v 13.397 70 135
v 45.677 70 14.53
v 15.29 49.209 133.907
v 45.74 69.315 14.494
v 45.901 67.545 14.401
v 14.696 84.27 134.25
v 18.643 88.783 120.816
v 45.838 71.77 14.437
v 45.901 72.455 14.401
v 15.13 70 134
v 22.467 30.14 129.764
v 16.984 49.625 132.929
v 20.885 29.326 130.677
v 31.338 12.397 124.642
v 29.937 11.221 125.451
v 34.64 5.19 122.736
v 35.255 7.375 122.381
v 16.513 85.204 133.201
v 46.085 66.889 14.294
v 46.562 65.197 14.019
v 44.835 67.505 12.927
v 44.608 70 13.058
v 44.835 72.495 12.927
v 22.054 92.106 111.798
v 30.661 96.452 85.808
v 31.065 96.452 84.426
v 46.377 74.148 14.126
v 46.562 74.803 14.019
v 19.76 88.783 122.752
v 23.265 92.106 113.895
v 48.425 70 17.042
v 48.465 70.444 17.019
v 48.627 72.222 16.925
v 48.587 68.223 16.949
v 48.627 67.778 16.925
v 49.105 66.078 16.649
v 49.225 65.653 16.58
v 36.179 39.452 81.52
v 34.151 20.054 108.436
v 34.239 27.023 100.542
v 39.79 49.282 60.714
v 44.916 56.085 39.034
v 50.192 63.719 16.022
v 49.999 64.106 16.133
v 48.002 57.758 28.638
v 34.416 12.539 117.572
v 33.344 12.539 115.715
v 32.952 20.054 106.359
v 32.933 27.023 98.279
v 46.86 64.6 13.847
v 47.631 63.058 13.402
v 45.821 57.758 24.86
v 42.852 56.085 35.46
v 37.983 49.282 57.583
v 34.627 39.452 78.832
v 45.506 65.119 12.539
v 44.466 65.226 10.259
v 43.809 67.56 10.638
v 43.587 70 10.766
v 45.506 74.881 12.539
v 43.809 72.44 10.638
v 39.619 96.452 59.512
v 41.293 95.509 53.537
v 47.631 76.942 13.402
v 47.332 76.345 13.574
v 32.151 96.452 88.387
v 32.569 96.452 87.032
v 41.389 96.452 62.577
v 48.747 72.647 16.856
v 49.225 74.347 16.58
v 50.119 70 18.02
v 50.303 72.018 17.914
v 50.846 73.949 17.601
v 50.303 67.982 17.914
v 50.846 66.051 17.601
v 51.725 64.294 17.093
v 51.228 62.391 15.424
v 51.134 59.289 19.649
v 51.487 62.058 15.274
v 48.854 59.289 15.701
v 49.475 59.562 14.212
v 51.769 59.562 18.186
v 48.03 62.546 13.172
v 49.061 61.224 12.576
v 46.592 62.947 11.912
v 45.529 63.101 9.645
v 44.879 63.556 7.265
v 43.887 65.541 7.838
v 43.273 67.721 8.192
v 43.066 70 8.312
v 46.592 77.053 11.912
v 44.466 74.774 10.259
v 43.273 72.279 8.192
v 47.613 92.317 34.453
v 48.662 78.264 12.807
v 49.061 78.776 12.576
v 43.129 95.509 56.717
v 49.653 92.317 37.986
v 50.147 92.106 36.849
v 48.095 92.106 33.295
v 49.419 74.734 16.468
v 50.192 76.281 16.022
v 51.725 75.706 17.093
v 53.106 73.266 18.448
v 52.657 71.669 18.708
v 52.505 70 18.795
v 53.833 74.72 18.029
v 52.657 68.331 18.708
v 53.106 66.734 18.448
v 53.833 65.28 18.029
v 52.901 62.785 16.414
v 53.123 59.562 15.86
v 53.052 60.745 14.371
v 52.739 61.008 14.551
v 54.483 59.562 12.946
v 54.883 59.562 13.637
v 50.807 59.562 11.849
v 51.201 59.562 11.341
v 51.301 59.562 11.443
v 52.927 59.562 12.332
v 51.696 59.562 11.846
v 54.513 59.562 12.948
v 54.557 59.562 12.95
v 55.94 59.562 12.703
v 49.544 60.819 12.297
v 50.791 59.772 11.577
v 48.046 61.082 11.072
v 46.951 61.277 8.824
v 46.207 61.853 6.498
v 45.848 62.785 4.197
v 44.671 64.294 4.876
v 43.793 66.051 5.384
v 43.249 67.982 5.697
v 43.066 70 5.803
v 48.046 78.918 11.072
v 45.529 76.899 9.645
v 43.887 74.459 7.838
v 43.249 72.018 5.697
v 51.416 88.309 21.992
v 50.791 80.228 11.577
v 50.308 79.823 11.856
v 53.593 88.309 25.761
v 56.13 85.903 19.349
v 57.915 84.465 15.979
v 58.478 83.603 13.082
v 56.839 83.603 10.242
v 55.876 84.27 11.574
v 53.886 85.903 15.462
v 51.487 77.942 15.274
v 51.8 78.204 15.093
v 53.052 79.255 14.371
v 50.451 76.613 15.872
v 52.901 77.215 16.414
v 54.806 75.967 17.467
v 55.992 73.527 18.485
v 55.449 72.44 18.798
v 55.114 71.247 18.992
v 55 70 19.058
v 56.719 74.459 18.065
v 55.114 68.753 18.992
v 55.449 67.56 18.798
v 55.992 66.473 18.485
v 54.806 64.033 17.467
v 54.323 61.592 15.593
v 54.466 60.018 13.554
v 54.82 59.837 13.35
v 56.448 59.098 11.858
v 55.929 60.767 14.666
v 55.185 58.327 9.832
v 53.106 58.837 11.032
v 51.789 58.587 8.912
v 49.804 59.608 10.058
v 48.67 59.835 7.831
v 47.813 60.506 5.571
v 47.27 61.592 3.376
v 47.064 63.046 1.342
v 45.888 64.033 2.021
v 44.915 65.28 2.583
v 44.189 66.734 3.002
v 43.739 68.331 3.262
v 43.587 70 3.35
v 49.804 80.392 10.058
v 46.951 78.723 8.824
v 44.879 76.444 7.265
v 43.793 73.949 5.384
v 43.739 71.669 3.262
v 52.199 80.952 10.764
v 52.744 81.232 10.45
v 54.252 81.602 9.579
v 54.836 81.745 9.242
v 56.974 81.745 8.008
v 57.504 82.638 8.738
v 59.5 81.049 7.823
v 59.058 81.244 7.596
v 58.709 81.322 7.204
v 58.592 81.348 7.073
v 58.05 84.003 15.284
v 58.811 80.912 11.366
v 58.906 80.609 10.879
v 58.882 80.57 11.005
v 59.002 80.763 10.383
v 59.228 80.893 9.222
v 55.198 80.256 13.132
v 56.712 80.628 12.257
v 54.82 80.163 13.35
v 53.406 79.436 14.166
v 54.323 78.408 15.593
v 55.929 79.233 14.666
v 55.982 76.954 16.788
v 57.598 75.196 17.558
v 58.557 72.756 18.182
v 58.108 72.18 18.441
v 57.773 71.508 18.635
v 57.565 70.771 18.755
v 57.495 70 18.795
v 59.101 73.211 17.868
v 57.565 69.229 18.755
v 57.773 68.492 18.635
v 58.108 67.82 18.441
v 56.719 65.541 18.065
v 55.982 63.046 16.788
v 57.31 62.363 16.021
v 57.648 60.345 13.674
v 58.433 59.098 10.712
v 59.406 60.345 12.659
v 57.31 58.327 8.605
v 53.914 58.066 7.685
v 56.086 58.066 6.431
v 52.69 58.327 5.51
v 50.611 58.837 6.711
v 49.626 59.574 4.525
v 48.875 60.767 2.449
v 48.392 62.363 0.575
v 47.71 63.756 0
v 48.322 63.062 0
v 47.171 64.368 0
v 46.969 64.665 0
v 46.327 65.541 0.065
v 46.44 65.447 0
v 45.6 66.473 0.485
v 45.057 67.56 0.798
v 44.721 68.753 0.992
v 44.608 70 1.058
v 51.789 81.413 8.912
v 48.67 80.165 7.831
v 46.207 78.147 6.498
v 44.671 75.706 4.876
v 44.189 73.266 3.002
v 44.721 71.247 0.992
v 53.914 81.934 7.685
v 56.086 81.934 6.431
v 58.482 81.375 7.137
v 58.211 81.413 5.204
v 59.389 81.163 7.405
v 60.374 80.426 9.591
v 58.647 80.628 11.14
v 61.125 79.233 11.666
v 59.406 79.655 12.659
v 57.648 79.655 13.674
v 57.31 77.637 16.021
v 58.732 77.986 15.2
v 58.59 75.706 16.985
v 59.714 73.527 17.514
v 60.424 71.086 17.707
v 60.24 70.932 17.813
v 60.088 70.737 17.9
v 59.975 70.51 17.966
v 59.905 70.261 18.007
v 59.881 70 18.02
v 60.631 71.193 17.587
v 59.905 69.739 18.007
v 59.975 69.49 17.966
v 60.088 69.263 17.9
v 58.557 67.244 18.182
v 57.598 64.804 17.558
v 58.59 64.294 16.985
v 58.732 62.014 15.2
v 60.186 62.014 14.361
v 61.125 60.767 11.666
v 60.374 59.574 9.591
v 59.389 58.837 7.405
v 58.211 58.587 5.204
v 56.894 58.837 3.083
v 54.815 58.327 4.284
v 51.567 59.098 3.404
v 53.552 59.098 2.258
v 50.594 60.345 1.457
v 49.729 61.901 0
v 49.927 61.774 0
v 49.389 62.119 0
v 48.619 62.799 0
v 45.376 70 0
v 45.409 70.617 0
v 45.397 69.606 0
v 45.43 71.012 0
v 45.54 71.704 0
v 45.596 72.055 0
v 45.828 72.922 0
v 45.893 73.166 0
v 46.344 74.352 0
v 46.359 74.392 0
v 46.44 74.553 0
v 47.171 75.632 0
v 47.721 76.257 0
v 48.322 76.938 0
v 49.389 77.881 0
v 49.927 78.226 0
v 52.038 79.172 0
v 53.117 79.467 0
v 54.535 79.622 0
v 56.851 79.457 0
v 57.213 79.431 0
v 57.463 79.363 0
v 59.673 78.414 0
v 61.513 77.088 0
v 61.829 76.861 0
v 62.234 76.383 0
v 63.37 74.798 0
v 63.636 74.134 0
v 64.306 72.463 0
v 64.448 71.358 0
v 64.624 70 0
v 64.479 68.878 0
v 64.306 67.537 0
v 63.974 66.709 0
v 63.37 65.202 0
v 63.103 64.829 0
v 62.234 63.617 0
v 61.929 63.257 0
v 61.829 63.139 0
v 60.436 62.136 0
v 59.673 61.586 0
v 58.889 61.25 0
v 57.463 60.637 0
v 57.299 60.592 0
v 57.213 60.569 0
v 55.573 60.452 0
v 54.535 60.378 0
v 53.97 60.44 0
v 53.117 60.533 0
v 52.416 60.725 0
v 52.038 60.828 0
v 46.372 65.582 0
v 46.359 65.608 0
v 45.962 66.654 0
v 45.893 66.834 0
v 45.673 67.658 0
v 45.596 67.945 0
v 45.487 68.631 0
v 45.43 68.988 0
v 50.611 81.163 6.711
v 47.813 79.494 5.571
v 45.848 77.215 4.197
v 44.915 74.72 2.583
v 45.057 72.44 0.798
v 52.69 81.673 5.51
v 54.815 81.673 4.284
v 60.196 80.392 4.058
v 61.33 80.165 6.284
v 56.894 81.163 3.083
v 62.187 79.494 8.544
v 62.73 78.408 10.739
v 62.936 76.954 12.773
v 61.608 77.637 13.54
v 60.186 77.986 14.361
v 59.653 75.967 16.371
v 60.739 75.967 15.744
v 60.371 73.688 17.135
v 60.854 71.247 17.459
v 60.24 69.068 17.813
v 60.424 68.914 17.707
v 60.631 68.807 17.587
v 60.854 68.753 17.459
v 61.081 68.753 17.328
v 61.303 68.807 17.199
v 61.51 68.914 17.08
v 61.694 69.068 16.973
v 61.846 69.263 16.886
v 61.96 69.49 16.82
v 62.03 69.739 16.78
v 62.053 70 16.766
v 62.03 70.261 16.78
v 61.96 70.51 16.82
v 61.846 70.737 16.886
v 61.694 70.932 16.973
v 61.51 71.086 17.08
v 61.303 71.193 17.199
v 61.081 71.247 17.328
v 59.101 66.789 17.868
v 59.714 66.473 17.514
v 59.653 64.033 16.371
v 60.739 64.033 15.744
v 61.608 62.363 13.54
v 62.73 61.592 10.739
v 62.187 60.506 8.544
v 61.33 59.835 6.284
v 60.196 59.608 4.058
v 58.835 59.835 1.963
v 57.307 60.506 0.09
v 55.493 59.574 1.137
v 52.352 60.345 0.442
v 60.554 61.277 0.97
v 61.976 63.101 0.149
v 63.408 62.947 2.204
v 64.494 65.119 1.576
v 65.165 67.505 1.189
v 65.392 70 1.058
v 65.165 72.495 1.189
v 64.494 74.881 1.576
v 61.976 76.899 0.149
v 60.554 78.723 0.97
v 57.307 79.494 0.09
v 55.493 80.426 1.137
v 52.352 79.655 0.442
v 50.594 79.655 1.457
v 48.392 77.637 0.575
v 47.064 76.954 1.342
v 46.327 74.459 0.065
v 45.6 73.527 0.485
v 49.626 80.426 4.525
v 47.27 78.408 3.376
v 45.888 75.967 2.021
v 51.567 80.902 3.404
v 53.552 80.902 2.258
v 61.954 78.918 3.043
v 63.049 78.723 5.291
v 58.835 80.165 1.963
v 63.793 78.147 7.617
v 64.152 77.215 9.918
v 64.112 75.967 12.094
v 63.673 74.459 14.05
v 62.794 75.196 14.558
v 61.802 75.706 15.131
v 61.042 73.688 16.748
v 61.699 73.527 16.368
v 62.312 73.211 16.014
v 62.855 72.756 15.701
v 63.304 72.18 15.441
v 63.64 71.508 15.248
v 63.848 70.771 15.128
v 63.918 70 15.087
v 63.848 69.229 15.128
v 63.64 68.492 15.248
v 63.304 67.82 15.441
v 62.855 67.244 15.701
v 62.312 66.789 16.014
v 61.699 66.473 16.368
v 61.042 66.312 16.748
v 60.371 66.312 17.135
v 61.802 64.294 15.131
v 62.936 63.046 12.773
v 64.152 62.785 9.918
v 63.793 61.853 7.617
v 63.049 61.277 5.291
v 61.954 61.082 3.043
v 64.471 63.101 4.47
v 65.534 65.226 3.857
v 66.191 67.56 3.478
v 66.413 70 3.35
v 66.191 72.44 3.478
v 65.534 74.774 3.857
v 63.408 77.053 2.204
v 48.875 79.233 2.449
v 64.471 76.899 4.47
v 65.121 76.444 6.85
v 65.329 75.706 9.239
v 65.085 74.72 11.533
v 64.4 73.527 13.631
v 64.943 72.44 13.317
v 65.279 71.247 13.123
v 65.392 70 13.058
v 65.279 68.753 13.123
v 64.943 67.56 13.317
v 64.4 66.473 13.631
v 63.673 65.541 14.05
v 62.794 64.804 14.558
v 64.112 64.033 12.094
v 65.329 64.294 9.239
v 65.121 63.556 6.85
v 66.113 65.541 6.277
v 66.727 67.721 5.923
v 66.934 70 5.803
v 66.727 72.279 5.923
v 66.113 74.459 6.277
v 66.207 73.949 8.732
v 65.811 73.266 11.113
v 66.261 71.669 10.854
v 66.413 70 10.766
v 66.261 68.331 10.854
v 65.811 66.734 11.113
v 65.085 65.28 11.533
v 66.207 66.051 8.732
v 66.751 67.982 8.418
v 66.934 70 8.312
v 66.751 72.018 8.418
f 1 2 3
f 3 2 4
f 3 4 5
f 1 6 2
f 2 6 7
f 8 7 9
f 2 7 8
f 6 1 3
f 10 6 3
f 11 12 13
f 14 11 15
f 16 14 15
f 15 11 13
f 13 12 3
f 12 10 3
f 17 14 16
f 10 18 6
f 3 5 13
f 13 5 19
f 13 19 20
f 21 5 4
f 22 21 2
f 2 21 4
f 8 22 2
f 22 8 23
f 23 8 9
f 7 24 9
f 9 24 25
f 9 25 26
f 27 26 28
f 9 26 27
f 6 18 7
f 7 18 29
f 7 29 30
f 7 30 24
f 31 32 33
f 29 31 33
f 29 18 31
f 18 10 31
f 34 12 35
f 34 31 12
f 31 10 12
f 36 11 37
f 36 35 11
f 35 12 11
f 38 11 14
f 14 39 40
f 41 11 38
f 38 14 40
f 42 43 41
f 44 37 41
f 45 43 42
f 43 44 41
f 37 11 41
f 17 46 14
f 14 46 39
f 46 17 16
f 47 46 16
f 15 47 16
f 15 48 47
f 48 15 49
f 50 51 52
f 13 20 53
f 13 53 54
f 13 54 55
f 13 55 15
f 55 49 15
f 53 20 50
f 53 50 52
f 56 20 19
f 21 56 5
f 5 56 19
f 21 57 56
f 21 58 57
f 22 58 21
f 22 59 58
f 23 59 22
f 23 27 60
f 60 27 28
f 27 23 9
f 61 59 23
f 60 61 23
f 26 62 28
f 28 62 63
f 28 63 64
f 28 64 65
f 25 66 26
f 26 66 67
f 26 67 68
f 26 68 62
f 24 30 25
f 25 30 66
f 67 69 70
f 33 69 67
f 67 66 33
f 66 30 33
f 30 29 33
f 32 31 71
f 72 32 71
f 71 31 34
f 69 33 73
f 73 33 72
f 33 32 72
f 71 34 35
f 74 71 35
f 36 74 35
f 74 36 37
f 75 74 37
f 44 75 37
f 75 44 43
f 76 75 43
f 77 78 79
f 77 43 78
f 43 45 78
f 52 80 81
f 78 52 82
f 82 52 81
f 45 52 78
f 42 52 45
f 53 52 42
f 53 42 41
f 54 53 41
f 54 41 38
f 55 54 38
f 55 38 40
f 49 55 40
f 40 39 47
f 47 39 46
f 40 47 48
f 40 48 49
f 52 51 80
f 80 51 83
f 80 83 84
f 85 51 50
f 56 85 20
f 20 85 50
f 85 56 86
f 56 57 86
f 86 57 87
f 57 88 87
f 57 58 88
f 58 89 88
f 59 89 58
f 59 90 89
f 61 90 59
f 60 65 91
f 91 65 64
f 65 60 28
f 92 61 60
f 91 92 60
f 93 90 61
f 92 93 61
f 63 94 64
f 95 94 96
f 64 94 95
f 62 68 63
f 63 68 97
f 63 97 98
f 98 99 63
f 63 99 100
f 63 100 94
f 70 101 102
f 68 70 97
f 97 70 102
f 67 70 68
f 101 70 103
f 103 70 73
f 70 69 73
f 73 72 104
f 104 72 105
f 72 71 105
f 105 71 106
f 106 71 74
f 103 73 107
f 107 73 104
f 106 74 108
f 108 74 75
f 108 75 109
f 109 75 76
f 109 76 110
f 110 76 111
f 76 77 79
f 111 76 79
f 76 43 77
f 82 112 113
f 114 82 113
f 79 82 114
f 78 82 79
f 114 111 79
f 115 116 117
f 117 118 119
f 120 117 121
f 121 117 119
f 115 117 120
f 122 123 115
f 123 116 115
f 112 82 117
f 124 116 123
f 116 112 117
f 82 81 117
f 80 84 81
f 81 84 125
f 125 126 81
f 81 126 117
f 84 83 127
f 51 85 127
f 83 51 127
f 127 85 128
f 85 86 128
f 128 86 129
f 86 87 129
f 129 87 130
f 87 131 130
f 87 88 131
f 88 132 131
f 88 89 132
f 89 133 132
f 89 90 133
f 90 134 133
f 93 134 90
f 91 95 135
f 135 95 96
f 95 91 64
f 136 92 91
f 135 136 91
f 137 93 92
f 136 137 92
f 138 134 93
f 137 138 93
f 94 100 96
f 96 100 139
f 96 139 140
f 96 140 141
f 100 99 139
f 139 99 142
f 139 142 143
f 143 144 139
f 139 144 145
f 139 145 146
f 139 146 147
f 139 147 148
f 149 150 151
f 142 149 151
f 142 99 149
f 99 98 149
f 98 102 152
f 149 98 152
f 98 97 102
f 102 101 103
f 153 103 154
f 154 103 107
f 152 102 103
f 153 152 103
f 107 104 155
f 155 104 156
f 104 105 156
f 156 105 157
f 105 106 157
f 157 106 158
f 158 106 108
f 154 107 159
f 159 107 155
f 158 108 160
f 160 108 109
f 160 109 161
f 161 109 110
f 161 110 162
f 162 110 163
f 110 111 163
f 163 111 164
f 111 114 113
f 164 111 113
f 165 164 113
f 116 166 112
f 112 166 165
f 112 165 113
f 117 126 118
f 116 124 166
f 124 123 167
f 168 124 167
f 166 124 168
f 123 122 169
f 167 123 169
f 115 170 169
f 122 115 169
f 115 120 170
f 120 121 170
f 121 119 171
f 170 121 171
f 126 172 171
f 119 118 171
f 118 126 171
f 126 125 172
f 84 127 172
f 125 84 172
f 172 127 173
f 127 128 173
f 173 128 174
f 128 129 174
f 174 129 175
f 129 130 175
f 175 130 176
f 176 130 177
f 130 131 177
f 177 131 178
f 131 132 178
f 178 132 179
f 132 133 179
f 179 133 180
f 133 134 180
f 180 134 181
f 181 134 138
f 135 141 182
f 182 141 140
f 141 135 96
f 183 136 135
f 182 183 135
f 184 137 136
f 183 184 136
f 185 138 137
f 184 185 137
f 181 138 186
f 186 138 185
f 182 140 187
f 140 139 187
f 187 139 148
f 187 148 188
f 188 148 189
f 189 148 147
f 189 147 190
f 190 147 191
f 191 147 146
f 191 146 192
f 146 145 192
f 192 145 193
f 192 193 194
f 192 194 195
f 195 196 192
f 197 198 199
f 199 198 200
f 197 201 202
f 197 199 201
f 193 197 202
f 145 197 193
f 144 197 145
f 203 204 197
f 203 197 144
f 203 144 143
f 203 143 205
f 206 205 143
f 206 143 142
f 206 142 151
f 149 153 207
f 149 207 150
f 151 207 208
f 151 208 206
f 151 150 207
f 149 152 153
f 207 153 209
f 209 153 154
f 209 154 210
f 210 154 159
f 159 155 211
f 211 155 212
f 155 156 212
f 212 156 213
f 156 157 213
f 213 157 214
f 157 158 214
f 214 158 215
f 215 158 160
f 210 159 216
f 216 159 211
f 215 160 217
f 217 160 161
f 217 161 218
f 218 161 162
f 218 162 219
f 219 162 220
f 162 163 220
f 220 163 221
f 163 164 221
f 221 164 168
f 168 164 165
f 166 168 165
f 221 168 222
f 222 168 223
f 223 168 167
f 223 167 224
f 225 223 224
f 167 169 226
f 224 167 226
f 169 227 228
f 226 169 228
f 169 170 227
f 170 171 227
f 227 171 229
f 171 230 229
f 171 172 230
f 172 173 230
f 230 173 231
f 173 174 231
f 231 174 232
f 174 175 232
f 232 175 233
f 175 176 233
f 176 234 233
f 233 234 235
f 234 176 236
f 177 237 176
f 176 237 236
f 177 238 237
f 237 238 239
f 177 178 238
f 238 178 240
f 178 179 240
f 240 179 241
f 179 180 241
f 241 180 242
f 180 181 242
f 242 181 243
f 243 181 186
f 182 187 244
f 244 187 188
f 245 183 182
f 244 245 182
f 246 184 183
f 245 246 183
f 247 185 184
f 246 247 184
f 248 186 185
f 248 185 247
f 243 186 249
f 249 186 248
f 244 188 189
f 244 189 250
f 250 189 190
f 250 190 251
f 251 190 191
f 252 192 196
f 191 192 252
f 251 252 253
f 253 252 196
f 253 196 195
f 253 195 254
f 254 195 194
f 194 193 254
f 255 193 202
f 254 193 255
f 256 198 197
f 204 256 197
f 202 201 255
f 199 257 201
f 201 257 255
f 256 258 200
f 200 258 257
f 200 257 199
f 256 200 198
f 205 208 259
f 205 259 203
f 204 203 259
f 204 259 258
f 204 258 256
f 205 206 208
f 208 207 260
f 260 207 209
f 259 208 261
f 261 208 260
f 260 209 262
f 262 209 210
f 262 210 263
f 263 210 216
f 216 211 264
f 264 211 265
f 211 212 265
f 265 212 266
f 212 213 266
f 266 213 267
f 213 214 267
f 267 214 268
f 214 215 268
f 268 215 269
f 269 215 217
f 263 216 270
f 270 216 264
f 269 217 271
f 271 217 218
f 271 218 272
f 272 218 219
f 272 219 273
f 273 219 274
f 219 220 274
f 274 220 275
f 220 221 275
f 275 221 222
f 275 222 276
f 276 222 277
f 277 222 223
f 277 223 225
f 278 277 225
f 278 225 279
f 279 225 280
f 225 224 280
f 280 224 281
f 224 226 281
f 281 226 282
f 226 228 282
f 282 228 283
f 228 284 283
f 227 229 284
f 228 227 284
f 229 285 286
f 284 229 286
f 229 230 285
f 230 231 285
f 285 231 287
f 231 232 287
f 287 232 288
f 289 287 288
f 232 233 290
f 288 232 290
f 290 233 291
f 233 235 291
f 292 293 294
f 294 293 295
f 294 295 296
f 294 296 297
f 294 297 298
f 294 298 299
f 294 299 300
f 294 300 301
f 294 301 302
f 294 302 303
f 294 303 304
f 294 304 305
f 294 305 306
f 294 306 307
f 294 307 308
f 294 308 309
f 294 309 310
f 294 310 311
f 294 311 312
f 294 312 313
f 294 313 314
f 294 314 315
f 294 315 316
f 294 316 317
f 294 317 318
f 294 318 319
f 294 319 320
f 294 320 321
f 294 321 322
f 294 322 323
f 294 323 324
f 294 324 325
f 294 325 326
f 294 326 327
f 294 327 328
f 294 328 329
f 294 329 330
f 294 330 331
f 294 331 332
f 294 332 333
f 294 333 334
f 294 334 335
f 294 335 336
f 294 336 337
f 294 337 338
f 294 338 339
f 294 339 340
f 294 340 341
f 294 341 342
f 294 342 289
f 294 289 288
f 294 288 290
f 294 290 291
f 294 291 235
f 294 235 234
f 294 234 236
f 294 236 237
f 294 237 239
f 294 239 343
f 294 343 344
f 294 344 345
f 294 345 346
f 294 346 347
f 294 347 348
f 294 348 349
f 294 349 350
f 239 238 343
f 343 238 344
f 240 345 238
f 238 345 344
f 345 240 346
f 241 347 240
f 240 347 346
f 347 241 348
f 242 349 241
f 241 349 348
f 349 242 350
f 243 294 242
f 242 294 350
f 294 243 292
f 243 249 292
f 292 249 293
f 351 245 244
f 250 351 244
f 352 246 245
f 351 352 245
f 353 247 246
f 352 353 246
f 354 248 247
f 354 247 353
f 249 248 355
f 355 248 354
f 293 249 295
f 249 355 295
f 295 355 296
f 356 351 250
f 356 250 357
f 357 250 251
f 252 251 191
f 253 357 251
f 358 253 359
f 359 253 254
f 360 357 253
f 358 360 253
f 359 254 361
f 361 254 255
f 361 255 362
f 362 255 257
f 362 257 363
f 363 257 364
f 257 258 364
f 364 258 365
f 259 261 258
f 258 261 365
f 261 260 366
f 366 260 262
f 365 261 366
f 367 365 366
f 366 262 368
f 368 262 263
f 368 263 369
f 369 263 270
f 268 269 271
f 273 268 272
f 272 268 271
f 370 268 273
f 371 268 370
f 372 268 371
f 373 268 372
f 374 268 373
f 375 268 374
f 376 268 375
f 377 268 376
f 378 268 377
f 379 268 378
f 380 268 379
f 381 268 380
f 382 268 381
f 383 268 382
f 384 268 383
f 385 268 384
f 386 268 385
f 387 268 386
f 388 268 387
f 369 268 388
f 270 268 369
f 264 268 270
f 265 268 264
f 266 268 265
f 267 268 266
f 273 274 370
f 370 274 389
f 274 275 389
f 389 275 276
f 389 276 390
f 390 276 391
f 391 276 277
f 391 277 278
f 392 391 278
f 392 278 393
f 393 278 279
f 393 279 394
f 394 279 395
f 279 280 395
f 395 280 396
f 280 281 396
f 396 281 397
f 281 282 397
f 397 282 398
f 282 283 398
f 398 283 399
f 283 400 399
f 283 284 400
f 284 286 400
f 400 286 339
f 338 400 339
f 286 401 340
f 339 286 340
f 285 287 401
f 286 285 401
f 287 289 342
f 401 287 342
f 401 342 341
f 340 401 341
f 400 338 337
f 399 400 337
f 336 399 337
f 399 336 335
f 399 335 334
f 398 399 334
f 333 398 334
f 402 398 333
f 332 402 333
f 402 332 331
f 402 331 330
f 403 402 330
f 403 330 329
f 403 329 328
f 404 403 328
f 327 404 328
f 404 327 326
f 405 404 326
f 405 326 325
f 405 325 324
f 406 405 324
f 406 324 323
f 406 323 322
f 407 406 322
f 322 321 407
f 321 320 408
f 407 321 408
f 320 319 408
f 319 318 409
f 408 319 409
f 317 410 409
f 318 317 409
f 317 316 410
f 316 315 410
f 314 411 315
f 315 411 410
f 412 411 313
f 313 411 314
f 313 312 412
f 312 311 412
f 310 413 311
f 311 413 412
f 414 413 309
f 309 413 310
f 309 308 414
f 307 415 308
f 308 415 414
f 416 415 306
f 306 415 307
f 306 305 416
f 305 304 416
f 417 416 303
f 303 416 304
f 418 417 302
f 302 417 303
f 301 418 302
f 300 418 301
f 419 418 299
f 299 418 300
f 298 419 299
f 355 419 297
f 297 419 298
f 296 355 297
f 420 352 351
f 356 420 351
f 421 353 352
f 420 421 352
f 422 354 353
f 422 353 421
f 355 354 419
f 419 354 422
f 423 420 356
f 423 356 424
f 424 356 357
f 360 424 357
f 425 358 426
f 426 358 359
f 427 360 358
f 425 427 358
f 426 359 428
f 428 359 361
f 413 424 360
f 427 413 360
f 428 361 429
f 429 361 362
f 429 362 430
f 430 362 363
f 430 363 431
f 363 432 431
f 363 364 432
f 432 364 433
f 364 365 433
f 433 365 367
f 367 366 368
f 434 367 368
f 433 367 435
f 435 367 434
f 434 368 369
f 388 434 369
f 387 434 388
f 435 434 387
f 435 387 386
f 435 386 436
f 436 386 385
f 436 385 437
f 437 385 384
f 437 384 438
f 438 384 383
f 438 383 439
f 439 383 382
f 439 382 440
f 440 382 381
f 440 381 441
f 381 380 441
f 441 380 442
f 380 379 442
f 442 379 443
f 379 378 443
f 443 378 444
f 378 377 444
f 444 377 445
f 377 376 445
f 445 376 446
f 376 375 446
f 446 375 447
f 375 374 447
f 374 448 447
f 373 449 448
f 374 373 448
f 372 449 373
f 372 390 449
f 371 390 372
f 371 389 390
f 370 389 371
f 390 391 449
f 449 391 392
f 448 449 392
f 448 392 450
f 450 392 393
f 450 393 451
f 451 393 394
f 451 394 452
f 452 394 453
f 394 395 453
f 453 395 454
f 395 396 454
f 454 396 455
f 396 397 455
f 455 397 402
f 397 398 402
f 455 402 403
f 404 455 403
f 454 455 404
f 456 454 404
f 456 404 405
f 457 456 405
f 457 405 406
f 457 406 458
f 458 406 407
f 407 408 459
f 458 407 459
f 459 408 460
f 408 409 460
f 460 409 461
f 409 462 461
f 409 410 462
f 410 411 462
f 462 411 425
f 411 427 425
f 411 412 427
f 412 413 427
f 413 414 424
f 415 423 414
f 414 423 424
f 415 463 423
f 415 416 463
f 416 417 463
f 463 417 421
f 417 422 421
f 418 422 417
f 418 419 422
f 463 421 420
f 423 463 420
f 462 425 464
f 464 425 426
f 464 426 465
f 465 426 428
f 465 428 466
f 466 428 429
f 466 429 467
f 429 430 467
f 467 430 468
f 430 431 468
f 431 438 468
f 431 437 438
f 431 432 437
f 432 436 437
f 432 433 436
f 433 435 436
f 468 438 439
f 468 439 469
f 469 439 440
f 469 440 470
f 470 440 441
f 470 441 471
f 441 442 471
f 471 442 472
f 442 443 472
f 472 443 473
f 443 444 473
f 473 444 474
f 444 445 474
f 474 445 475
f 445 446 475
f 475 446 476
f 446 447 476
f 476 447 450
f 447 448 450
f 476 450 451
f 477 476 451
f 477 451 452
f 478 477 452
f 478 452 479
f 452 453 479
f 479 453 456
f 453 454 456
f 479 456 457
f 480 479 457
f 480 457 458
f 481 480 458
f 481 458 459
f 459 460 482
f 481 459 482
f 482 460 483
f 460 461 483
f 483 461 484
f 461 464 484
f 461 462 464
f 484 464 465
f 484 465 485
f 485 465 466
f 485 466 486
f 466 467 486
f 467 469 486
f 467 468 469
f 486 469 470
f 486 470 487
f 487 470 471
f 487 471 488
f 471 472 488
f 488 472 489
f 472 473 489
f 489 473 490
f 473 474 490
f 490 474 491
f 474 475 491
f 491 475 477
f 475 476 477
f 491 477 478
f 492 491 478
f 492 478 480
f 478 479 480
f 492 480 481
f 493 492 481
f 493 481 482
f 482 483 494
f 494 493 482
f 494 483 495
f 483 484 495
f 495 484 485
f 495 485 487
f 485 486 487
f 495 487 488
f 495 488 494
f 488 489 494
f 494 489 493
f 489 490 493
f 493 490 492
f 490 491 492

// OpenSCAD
// *******************************************
// Self starting mapleseed experiment
// by Quentin Harley: (qharley)
// August 2011
// *******************************************

intersection(){
    cube(150);	
    translate([100,70,85])
	rotate([180,30,0]){
   		difference(){	
			intersection(){
				difference(){
					cylinder(100,100,0);
					cylinder(95,98,0);
					translate([-120,0,-55]){
						rotate([45,41,0])
							cube(200);
						}
				}
				translate([-50,73,0])
					cylinder(100,100,100);
			}
  			translate([0,90,0])
  			cylinder(100,80,80);  
   		}	
   		translate([0,0,90])
			sphere(12);	
	
	}
}
